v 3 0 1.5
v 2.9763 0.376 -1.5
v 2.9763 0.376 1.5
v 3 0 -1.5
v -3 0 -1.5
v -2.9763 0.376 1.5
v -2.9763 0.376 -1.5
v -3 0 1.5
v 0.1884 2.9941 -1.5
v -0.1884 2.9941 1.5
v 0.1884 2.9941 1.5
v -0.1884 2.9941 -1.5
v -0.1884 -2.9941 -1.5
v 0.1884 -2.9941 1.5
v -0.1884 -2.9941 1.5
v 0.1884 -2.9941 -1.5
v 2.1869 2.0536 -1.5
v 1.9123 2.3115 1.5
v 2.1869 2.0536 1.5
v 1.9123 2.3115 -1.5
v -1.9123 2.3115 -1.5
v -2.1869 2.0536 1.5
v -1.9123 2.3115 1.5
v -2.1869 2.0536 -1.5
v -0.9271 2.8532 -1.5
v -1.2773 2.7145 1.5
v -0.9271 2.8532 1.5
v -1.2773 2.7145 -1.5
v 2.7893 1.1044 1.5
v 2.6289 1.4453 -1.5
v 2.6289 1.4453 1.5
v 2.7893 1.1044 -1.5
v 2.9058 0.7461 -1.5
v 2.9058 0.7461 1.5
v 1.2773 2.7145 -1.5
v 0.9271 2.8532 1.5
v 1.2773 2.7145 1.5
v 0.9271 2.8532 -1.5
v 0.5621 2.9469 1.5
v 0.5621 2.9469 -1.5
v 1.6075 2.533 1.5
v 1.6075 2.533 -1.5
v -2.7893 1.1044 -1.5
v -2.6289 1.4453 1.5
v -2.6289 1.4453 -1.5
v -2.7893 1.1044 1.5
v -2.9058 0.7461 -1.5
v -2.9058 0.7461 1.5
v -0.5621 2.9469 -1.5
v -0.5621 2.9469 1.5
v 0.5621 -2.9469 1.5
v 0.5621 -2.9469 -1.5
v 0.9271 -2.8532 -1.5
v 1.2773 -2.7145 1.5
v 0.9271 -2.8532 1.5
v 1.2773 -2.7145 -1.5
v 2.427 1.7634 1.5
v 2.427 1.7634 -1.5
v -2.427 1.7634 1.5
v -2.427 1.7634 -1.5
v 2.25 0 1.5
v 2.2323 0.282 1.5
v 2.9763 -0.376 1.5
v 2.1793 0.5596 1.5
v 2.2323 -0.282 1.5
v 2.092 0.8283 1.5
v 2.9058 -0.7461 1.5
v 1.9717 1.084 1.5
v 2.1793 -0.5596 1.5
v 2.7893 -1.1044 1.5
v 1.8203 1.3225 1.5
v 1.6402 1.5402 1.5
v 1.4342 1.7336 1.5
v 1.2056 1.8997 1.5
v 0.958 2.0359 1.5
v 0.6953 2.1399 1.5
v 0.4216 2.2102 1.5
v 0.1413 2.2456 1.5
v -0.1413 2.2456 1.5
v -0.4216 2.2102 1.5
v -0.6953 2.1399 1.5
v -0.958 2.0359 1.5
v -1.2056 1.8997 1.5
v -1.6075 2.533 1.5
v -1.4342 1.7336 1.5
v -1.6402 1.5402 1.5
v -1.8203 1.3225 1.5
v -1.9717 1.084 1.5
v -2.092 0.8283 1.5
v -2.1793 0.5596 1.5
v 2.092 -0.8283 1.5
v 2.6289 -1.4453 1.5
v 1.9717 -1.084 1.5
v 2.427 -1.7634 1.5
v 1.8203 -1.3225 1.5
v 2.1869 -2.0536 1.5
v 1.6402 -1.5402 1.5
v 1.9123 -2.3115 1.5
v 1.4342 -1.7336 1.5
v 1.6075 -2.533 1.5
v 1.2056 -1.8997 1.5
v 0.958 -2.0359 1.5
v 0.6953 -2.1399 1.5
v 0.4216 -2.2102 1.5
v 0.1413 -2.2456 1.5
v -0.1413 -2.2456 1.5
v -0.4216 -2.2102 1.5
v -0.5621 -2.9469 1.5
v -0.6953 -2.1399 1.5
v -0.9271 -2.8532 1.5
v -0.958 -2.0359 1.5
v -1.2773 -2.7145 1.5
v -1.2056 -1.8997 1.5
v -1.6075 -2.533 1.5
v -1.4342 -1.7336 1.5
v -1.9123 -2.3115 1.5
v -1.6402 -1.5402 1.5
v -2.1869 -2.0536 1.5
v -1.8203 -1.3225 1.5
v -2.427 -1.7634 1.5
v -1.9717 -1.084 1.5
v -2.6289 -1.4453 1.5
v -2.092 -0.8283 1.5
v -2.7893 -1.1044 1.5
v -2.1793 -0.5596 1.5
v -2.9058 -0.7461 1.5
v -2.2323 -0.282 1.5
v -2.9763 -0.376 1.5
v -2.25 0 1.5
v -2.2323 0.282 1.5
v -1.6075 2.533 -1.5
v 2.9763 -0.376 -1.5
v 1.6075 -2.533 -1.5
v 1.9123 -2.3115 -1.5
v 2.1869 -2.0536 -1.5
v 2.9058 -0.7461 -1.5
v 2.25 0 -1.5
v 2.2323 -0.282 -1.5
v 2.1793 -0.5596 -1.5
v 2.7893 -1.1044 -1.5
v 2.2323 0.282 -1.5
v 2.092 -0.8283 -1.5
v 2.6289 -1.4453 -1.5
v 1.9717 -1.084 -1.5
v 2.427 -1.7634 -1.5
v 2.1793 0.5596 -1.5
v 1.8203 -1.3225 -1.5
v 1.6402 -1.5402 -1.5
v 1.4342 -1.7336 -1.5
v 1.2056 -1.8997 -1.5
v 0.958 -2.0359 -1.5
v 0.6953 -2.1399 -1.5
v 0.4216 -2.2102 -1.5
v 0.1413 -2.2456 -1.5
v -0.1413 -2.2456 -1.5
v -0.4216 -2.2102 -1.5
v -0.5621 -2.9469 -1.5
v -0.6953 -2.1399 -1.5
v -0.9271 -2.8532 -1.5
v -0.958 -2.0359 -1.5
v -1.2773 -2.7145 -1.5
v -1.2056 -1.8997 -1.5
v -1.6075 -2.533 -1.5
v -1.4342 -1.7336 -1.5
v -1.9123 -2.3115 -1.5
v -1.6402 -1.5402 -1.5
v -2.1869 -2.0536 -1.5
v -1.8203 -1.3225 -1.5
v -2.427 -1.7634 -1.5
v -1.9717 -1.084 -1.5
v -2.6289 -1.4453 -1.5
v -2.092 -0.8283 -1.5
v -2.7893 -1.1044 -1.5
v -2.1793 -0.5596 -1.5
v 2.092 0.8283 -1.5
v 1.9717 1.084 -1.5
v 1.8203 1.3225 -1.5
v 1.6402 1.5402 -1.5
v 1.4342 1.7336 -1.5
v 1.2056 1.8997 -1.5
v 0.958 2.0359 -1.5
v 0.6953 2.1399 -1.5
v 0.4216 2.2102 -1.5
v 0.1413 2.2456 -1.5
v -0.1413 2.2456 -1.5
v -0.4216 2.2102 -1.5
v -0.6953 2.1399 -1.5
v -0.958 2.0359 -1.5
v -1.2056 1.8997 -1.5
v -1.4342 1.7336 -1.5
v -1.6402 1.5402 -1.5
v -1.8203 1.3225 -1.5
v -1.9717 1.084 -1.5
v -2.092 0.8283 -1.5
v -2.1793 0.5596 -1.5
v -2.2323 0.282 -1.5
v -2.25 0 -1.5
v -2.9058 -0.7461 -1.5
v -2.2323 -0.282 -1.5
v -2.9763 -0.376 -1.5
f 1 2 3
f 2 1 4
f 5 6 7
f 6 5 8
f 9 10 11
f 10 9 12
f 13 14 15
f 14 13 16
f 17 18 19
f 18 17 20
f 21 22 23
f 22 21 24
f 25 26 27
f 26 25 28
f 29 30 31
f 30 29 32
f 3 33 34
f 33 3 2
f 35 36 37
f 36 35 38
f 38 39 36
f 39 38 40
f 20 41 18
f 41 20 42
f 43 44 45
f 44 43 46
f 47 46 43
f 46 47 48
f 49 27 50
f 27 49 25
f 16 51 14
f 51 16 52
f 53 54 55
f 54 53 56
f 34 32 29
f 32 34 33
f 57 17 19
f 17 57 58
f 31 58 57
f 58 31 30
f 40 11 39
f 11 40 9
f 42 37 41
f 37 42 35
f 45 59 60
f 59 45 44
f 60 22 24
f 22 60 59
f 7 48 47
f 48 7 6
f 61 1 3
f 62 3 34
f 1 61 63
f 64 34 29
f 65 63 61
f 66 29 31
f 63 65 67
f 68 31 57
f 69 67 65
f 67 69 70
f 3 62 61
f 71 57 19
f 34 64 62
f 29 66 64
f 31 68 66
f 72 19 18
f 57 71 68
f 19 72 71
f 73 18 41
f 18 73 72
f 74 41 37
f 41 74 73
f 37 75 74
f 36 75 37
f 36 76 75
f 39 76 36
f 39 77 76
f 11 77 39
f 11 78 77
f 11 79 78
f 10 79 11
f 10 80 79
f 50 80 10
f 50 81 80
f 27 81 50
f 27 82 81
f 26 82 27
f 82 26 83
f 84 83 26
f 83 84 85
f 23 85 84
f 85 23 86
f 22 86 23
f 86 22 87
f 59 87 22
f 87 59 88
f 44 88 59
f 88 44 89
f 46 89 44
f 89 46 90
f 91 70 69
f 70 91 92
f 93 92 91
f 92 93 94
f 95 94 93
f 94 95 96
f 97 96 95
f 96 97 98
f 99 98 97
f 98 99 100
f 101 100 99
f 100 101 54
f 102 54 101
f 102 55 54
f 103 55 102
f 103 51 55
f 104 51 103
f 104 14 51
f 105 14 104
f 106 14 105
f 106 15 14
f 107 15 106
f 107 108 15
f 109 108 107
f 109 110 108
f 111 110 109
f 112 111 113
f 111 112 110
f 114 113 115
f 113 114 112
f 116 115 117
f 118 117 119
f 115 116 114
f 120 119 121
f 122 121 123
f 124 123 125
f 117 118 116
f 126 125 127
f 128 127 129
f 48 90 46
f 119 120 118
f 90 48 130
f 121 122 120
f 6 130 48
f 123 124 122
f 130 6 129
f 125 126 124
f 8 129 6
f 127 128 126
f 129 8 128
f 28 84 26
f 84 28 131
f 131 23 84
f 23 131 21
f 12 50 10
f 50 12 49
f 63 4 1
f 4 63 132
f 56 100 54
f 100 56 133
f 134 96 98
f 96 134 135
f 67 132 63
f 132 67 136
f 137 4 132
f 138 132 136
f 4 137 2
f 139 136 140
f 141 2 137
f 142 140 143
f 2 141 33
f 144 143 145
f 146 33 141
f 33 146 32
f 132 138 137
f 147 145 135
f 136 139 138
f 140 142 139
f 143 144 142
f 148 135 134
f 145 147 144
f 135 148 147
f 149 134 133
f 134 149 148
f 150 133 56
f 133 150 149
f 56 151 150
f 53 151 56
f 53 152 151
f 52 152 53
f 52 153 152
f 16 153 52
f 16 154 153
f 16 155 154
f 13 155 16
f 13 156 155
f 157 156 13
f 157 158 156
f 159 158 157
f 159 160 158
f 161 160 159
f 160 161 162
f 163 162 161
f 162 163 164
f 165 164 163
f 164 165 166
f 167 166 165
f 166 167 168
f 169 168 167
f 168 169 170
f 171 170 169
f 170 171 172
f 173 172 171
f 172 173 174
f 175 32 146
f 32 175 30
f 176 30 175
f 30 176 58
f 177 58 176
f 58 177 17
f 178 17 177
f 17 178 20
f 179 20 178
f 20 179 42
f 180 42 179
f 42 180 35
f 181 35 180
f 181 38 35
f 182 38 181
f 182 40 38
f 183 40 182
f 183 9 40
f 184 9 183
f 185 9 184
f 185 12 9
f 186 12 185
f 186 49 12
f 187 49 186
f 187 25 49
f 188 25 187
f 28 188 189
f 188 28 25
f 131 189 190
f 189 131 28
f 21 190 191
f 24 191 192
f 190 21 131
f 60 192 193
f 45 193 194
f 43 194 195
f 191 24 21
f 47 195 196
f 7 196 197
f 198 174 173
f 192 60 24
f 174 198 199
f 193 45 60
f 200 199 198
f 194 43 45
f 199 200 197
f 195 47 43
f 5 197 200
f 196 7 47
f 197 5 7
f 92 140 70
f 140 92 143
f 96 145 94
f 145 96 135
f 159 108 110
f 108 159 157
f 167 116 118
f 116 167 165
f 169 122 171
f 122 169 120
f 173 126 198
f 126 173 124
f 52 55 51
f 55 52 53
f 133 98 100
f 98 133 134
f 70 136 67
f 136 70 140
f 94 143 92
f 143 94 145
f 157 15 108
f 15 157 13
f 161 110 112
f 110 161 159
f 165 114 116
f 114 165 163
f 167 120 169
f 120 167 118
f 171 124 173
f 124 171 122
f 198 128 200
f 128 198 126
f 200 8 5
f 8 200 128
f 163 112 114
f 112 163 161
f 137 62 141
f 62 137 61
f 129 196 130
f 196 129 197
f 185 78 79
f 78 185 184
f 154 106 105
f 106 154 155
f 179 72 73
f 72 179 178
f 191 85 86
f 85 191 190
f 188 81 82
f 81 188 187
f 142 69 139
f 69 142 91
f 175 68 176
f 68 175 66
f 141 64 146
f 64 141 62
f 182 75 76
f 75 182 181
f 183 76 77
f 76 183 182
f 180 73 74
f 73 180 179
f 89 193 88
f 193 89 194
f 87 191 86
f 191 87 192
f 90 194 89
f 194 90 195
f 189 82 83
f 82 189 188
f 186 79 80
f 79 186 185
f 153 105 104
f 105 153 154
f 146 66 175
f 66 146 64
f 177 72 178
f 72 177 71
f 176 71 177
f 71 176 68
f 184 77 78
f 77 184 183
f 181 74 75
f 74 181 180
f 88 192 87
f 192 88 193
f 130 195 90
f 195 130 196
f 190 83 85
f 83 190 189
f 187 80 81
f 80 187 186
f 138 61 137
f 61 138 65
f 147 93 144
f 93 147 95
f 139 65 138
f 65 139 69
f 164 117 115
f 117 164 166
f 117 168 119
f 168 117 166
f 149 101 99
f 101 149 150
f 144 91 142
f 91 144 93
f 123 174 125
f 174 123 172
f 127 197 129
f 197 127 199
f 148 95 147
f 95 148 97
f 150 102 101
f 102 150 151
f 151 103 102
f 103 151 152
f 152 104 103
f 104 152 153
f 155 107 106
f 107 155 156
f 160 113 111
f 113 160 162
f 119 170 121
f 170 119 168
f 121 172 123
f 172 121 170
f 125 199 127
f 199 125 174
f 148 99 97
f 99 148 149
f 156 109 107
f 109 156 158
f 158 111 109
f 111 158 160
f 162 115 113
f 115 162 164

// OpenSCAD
$fn = 50;


difference() {
	union() {
		translate(v = [0, 0, -1.5000000000]) {
			cylinder(h = 3, r = 3.0000000000);
		}
	}
	union() {
		translate(v = [0, 0, -100.0000000000]) {
			cylinder(h = 200, r = 2.2500000000);
		}
	}
}
